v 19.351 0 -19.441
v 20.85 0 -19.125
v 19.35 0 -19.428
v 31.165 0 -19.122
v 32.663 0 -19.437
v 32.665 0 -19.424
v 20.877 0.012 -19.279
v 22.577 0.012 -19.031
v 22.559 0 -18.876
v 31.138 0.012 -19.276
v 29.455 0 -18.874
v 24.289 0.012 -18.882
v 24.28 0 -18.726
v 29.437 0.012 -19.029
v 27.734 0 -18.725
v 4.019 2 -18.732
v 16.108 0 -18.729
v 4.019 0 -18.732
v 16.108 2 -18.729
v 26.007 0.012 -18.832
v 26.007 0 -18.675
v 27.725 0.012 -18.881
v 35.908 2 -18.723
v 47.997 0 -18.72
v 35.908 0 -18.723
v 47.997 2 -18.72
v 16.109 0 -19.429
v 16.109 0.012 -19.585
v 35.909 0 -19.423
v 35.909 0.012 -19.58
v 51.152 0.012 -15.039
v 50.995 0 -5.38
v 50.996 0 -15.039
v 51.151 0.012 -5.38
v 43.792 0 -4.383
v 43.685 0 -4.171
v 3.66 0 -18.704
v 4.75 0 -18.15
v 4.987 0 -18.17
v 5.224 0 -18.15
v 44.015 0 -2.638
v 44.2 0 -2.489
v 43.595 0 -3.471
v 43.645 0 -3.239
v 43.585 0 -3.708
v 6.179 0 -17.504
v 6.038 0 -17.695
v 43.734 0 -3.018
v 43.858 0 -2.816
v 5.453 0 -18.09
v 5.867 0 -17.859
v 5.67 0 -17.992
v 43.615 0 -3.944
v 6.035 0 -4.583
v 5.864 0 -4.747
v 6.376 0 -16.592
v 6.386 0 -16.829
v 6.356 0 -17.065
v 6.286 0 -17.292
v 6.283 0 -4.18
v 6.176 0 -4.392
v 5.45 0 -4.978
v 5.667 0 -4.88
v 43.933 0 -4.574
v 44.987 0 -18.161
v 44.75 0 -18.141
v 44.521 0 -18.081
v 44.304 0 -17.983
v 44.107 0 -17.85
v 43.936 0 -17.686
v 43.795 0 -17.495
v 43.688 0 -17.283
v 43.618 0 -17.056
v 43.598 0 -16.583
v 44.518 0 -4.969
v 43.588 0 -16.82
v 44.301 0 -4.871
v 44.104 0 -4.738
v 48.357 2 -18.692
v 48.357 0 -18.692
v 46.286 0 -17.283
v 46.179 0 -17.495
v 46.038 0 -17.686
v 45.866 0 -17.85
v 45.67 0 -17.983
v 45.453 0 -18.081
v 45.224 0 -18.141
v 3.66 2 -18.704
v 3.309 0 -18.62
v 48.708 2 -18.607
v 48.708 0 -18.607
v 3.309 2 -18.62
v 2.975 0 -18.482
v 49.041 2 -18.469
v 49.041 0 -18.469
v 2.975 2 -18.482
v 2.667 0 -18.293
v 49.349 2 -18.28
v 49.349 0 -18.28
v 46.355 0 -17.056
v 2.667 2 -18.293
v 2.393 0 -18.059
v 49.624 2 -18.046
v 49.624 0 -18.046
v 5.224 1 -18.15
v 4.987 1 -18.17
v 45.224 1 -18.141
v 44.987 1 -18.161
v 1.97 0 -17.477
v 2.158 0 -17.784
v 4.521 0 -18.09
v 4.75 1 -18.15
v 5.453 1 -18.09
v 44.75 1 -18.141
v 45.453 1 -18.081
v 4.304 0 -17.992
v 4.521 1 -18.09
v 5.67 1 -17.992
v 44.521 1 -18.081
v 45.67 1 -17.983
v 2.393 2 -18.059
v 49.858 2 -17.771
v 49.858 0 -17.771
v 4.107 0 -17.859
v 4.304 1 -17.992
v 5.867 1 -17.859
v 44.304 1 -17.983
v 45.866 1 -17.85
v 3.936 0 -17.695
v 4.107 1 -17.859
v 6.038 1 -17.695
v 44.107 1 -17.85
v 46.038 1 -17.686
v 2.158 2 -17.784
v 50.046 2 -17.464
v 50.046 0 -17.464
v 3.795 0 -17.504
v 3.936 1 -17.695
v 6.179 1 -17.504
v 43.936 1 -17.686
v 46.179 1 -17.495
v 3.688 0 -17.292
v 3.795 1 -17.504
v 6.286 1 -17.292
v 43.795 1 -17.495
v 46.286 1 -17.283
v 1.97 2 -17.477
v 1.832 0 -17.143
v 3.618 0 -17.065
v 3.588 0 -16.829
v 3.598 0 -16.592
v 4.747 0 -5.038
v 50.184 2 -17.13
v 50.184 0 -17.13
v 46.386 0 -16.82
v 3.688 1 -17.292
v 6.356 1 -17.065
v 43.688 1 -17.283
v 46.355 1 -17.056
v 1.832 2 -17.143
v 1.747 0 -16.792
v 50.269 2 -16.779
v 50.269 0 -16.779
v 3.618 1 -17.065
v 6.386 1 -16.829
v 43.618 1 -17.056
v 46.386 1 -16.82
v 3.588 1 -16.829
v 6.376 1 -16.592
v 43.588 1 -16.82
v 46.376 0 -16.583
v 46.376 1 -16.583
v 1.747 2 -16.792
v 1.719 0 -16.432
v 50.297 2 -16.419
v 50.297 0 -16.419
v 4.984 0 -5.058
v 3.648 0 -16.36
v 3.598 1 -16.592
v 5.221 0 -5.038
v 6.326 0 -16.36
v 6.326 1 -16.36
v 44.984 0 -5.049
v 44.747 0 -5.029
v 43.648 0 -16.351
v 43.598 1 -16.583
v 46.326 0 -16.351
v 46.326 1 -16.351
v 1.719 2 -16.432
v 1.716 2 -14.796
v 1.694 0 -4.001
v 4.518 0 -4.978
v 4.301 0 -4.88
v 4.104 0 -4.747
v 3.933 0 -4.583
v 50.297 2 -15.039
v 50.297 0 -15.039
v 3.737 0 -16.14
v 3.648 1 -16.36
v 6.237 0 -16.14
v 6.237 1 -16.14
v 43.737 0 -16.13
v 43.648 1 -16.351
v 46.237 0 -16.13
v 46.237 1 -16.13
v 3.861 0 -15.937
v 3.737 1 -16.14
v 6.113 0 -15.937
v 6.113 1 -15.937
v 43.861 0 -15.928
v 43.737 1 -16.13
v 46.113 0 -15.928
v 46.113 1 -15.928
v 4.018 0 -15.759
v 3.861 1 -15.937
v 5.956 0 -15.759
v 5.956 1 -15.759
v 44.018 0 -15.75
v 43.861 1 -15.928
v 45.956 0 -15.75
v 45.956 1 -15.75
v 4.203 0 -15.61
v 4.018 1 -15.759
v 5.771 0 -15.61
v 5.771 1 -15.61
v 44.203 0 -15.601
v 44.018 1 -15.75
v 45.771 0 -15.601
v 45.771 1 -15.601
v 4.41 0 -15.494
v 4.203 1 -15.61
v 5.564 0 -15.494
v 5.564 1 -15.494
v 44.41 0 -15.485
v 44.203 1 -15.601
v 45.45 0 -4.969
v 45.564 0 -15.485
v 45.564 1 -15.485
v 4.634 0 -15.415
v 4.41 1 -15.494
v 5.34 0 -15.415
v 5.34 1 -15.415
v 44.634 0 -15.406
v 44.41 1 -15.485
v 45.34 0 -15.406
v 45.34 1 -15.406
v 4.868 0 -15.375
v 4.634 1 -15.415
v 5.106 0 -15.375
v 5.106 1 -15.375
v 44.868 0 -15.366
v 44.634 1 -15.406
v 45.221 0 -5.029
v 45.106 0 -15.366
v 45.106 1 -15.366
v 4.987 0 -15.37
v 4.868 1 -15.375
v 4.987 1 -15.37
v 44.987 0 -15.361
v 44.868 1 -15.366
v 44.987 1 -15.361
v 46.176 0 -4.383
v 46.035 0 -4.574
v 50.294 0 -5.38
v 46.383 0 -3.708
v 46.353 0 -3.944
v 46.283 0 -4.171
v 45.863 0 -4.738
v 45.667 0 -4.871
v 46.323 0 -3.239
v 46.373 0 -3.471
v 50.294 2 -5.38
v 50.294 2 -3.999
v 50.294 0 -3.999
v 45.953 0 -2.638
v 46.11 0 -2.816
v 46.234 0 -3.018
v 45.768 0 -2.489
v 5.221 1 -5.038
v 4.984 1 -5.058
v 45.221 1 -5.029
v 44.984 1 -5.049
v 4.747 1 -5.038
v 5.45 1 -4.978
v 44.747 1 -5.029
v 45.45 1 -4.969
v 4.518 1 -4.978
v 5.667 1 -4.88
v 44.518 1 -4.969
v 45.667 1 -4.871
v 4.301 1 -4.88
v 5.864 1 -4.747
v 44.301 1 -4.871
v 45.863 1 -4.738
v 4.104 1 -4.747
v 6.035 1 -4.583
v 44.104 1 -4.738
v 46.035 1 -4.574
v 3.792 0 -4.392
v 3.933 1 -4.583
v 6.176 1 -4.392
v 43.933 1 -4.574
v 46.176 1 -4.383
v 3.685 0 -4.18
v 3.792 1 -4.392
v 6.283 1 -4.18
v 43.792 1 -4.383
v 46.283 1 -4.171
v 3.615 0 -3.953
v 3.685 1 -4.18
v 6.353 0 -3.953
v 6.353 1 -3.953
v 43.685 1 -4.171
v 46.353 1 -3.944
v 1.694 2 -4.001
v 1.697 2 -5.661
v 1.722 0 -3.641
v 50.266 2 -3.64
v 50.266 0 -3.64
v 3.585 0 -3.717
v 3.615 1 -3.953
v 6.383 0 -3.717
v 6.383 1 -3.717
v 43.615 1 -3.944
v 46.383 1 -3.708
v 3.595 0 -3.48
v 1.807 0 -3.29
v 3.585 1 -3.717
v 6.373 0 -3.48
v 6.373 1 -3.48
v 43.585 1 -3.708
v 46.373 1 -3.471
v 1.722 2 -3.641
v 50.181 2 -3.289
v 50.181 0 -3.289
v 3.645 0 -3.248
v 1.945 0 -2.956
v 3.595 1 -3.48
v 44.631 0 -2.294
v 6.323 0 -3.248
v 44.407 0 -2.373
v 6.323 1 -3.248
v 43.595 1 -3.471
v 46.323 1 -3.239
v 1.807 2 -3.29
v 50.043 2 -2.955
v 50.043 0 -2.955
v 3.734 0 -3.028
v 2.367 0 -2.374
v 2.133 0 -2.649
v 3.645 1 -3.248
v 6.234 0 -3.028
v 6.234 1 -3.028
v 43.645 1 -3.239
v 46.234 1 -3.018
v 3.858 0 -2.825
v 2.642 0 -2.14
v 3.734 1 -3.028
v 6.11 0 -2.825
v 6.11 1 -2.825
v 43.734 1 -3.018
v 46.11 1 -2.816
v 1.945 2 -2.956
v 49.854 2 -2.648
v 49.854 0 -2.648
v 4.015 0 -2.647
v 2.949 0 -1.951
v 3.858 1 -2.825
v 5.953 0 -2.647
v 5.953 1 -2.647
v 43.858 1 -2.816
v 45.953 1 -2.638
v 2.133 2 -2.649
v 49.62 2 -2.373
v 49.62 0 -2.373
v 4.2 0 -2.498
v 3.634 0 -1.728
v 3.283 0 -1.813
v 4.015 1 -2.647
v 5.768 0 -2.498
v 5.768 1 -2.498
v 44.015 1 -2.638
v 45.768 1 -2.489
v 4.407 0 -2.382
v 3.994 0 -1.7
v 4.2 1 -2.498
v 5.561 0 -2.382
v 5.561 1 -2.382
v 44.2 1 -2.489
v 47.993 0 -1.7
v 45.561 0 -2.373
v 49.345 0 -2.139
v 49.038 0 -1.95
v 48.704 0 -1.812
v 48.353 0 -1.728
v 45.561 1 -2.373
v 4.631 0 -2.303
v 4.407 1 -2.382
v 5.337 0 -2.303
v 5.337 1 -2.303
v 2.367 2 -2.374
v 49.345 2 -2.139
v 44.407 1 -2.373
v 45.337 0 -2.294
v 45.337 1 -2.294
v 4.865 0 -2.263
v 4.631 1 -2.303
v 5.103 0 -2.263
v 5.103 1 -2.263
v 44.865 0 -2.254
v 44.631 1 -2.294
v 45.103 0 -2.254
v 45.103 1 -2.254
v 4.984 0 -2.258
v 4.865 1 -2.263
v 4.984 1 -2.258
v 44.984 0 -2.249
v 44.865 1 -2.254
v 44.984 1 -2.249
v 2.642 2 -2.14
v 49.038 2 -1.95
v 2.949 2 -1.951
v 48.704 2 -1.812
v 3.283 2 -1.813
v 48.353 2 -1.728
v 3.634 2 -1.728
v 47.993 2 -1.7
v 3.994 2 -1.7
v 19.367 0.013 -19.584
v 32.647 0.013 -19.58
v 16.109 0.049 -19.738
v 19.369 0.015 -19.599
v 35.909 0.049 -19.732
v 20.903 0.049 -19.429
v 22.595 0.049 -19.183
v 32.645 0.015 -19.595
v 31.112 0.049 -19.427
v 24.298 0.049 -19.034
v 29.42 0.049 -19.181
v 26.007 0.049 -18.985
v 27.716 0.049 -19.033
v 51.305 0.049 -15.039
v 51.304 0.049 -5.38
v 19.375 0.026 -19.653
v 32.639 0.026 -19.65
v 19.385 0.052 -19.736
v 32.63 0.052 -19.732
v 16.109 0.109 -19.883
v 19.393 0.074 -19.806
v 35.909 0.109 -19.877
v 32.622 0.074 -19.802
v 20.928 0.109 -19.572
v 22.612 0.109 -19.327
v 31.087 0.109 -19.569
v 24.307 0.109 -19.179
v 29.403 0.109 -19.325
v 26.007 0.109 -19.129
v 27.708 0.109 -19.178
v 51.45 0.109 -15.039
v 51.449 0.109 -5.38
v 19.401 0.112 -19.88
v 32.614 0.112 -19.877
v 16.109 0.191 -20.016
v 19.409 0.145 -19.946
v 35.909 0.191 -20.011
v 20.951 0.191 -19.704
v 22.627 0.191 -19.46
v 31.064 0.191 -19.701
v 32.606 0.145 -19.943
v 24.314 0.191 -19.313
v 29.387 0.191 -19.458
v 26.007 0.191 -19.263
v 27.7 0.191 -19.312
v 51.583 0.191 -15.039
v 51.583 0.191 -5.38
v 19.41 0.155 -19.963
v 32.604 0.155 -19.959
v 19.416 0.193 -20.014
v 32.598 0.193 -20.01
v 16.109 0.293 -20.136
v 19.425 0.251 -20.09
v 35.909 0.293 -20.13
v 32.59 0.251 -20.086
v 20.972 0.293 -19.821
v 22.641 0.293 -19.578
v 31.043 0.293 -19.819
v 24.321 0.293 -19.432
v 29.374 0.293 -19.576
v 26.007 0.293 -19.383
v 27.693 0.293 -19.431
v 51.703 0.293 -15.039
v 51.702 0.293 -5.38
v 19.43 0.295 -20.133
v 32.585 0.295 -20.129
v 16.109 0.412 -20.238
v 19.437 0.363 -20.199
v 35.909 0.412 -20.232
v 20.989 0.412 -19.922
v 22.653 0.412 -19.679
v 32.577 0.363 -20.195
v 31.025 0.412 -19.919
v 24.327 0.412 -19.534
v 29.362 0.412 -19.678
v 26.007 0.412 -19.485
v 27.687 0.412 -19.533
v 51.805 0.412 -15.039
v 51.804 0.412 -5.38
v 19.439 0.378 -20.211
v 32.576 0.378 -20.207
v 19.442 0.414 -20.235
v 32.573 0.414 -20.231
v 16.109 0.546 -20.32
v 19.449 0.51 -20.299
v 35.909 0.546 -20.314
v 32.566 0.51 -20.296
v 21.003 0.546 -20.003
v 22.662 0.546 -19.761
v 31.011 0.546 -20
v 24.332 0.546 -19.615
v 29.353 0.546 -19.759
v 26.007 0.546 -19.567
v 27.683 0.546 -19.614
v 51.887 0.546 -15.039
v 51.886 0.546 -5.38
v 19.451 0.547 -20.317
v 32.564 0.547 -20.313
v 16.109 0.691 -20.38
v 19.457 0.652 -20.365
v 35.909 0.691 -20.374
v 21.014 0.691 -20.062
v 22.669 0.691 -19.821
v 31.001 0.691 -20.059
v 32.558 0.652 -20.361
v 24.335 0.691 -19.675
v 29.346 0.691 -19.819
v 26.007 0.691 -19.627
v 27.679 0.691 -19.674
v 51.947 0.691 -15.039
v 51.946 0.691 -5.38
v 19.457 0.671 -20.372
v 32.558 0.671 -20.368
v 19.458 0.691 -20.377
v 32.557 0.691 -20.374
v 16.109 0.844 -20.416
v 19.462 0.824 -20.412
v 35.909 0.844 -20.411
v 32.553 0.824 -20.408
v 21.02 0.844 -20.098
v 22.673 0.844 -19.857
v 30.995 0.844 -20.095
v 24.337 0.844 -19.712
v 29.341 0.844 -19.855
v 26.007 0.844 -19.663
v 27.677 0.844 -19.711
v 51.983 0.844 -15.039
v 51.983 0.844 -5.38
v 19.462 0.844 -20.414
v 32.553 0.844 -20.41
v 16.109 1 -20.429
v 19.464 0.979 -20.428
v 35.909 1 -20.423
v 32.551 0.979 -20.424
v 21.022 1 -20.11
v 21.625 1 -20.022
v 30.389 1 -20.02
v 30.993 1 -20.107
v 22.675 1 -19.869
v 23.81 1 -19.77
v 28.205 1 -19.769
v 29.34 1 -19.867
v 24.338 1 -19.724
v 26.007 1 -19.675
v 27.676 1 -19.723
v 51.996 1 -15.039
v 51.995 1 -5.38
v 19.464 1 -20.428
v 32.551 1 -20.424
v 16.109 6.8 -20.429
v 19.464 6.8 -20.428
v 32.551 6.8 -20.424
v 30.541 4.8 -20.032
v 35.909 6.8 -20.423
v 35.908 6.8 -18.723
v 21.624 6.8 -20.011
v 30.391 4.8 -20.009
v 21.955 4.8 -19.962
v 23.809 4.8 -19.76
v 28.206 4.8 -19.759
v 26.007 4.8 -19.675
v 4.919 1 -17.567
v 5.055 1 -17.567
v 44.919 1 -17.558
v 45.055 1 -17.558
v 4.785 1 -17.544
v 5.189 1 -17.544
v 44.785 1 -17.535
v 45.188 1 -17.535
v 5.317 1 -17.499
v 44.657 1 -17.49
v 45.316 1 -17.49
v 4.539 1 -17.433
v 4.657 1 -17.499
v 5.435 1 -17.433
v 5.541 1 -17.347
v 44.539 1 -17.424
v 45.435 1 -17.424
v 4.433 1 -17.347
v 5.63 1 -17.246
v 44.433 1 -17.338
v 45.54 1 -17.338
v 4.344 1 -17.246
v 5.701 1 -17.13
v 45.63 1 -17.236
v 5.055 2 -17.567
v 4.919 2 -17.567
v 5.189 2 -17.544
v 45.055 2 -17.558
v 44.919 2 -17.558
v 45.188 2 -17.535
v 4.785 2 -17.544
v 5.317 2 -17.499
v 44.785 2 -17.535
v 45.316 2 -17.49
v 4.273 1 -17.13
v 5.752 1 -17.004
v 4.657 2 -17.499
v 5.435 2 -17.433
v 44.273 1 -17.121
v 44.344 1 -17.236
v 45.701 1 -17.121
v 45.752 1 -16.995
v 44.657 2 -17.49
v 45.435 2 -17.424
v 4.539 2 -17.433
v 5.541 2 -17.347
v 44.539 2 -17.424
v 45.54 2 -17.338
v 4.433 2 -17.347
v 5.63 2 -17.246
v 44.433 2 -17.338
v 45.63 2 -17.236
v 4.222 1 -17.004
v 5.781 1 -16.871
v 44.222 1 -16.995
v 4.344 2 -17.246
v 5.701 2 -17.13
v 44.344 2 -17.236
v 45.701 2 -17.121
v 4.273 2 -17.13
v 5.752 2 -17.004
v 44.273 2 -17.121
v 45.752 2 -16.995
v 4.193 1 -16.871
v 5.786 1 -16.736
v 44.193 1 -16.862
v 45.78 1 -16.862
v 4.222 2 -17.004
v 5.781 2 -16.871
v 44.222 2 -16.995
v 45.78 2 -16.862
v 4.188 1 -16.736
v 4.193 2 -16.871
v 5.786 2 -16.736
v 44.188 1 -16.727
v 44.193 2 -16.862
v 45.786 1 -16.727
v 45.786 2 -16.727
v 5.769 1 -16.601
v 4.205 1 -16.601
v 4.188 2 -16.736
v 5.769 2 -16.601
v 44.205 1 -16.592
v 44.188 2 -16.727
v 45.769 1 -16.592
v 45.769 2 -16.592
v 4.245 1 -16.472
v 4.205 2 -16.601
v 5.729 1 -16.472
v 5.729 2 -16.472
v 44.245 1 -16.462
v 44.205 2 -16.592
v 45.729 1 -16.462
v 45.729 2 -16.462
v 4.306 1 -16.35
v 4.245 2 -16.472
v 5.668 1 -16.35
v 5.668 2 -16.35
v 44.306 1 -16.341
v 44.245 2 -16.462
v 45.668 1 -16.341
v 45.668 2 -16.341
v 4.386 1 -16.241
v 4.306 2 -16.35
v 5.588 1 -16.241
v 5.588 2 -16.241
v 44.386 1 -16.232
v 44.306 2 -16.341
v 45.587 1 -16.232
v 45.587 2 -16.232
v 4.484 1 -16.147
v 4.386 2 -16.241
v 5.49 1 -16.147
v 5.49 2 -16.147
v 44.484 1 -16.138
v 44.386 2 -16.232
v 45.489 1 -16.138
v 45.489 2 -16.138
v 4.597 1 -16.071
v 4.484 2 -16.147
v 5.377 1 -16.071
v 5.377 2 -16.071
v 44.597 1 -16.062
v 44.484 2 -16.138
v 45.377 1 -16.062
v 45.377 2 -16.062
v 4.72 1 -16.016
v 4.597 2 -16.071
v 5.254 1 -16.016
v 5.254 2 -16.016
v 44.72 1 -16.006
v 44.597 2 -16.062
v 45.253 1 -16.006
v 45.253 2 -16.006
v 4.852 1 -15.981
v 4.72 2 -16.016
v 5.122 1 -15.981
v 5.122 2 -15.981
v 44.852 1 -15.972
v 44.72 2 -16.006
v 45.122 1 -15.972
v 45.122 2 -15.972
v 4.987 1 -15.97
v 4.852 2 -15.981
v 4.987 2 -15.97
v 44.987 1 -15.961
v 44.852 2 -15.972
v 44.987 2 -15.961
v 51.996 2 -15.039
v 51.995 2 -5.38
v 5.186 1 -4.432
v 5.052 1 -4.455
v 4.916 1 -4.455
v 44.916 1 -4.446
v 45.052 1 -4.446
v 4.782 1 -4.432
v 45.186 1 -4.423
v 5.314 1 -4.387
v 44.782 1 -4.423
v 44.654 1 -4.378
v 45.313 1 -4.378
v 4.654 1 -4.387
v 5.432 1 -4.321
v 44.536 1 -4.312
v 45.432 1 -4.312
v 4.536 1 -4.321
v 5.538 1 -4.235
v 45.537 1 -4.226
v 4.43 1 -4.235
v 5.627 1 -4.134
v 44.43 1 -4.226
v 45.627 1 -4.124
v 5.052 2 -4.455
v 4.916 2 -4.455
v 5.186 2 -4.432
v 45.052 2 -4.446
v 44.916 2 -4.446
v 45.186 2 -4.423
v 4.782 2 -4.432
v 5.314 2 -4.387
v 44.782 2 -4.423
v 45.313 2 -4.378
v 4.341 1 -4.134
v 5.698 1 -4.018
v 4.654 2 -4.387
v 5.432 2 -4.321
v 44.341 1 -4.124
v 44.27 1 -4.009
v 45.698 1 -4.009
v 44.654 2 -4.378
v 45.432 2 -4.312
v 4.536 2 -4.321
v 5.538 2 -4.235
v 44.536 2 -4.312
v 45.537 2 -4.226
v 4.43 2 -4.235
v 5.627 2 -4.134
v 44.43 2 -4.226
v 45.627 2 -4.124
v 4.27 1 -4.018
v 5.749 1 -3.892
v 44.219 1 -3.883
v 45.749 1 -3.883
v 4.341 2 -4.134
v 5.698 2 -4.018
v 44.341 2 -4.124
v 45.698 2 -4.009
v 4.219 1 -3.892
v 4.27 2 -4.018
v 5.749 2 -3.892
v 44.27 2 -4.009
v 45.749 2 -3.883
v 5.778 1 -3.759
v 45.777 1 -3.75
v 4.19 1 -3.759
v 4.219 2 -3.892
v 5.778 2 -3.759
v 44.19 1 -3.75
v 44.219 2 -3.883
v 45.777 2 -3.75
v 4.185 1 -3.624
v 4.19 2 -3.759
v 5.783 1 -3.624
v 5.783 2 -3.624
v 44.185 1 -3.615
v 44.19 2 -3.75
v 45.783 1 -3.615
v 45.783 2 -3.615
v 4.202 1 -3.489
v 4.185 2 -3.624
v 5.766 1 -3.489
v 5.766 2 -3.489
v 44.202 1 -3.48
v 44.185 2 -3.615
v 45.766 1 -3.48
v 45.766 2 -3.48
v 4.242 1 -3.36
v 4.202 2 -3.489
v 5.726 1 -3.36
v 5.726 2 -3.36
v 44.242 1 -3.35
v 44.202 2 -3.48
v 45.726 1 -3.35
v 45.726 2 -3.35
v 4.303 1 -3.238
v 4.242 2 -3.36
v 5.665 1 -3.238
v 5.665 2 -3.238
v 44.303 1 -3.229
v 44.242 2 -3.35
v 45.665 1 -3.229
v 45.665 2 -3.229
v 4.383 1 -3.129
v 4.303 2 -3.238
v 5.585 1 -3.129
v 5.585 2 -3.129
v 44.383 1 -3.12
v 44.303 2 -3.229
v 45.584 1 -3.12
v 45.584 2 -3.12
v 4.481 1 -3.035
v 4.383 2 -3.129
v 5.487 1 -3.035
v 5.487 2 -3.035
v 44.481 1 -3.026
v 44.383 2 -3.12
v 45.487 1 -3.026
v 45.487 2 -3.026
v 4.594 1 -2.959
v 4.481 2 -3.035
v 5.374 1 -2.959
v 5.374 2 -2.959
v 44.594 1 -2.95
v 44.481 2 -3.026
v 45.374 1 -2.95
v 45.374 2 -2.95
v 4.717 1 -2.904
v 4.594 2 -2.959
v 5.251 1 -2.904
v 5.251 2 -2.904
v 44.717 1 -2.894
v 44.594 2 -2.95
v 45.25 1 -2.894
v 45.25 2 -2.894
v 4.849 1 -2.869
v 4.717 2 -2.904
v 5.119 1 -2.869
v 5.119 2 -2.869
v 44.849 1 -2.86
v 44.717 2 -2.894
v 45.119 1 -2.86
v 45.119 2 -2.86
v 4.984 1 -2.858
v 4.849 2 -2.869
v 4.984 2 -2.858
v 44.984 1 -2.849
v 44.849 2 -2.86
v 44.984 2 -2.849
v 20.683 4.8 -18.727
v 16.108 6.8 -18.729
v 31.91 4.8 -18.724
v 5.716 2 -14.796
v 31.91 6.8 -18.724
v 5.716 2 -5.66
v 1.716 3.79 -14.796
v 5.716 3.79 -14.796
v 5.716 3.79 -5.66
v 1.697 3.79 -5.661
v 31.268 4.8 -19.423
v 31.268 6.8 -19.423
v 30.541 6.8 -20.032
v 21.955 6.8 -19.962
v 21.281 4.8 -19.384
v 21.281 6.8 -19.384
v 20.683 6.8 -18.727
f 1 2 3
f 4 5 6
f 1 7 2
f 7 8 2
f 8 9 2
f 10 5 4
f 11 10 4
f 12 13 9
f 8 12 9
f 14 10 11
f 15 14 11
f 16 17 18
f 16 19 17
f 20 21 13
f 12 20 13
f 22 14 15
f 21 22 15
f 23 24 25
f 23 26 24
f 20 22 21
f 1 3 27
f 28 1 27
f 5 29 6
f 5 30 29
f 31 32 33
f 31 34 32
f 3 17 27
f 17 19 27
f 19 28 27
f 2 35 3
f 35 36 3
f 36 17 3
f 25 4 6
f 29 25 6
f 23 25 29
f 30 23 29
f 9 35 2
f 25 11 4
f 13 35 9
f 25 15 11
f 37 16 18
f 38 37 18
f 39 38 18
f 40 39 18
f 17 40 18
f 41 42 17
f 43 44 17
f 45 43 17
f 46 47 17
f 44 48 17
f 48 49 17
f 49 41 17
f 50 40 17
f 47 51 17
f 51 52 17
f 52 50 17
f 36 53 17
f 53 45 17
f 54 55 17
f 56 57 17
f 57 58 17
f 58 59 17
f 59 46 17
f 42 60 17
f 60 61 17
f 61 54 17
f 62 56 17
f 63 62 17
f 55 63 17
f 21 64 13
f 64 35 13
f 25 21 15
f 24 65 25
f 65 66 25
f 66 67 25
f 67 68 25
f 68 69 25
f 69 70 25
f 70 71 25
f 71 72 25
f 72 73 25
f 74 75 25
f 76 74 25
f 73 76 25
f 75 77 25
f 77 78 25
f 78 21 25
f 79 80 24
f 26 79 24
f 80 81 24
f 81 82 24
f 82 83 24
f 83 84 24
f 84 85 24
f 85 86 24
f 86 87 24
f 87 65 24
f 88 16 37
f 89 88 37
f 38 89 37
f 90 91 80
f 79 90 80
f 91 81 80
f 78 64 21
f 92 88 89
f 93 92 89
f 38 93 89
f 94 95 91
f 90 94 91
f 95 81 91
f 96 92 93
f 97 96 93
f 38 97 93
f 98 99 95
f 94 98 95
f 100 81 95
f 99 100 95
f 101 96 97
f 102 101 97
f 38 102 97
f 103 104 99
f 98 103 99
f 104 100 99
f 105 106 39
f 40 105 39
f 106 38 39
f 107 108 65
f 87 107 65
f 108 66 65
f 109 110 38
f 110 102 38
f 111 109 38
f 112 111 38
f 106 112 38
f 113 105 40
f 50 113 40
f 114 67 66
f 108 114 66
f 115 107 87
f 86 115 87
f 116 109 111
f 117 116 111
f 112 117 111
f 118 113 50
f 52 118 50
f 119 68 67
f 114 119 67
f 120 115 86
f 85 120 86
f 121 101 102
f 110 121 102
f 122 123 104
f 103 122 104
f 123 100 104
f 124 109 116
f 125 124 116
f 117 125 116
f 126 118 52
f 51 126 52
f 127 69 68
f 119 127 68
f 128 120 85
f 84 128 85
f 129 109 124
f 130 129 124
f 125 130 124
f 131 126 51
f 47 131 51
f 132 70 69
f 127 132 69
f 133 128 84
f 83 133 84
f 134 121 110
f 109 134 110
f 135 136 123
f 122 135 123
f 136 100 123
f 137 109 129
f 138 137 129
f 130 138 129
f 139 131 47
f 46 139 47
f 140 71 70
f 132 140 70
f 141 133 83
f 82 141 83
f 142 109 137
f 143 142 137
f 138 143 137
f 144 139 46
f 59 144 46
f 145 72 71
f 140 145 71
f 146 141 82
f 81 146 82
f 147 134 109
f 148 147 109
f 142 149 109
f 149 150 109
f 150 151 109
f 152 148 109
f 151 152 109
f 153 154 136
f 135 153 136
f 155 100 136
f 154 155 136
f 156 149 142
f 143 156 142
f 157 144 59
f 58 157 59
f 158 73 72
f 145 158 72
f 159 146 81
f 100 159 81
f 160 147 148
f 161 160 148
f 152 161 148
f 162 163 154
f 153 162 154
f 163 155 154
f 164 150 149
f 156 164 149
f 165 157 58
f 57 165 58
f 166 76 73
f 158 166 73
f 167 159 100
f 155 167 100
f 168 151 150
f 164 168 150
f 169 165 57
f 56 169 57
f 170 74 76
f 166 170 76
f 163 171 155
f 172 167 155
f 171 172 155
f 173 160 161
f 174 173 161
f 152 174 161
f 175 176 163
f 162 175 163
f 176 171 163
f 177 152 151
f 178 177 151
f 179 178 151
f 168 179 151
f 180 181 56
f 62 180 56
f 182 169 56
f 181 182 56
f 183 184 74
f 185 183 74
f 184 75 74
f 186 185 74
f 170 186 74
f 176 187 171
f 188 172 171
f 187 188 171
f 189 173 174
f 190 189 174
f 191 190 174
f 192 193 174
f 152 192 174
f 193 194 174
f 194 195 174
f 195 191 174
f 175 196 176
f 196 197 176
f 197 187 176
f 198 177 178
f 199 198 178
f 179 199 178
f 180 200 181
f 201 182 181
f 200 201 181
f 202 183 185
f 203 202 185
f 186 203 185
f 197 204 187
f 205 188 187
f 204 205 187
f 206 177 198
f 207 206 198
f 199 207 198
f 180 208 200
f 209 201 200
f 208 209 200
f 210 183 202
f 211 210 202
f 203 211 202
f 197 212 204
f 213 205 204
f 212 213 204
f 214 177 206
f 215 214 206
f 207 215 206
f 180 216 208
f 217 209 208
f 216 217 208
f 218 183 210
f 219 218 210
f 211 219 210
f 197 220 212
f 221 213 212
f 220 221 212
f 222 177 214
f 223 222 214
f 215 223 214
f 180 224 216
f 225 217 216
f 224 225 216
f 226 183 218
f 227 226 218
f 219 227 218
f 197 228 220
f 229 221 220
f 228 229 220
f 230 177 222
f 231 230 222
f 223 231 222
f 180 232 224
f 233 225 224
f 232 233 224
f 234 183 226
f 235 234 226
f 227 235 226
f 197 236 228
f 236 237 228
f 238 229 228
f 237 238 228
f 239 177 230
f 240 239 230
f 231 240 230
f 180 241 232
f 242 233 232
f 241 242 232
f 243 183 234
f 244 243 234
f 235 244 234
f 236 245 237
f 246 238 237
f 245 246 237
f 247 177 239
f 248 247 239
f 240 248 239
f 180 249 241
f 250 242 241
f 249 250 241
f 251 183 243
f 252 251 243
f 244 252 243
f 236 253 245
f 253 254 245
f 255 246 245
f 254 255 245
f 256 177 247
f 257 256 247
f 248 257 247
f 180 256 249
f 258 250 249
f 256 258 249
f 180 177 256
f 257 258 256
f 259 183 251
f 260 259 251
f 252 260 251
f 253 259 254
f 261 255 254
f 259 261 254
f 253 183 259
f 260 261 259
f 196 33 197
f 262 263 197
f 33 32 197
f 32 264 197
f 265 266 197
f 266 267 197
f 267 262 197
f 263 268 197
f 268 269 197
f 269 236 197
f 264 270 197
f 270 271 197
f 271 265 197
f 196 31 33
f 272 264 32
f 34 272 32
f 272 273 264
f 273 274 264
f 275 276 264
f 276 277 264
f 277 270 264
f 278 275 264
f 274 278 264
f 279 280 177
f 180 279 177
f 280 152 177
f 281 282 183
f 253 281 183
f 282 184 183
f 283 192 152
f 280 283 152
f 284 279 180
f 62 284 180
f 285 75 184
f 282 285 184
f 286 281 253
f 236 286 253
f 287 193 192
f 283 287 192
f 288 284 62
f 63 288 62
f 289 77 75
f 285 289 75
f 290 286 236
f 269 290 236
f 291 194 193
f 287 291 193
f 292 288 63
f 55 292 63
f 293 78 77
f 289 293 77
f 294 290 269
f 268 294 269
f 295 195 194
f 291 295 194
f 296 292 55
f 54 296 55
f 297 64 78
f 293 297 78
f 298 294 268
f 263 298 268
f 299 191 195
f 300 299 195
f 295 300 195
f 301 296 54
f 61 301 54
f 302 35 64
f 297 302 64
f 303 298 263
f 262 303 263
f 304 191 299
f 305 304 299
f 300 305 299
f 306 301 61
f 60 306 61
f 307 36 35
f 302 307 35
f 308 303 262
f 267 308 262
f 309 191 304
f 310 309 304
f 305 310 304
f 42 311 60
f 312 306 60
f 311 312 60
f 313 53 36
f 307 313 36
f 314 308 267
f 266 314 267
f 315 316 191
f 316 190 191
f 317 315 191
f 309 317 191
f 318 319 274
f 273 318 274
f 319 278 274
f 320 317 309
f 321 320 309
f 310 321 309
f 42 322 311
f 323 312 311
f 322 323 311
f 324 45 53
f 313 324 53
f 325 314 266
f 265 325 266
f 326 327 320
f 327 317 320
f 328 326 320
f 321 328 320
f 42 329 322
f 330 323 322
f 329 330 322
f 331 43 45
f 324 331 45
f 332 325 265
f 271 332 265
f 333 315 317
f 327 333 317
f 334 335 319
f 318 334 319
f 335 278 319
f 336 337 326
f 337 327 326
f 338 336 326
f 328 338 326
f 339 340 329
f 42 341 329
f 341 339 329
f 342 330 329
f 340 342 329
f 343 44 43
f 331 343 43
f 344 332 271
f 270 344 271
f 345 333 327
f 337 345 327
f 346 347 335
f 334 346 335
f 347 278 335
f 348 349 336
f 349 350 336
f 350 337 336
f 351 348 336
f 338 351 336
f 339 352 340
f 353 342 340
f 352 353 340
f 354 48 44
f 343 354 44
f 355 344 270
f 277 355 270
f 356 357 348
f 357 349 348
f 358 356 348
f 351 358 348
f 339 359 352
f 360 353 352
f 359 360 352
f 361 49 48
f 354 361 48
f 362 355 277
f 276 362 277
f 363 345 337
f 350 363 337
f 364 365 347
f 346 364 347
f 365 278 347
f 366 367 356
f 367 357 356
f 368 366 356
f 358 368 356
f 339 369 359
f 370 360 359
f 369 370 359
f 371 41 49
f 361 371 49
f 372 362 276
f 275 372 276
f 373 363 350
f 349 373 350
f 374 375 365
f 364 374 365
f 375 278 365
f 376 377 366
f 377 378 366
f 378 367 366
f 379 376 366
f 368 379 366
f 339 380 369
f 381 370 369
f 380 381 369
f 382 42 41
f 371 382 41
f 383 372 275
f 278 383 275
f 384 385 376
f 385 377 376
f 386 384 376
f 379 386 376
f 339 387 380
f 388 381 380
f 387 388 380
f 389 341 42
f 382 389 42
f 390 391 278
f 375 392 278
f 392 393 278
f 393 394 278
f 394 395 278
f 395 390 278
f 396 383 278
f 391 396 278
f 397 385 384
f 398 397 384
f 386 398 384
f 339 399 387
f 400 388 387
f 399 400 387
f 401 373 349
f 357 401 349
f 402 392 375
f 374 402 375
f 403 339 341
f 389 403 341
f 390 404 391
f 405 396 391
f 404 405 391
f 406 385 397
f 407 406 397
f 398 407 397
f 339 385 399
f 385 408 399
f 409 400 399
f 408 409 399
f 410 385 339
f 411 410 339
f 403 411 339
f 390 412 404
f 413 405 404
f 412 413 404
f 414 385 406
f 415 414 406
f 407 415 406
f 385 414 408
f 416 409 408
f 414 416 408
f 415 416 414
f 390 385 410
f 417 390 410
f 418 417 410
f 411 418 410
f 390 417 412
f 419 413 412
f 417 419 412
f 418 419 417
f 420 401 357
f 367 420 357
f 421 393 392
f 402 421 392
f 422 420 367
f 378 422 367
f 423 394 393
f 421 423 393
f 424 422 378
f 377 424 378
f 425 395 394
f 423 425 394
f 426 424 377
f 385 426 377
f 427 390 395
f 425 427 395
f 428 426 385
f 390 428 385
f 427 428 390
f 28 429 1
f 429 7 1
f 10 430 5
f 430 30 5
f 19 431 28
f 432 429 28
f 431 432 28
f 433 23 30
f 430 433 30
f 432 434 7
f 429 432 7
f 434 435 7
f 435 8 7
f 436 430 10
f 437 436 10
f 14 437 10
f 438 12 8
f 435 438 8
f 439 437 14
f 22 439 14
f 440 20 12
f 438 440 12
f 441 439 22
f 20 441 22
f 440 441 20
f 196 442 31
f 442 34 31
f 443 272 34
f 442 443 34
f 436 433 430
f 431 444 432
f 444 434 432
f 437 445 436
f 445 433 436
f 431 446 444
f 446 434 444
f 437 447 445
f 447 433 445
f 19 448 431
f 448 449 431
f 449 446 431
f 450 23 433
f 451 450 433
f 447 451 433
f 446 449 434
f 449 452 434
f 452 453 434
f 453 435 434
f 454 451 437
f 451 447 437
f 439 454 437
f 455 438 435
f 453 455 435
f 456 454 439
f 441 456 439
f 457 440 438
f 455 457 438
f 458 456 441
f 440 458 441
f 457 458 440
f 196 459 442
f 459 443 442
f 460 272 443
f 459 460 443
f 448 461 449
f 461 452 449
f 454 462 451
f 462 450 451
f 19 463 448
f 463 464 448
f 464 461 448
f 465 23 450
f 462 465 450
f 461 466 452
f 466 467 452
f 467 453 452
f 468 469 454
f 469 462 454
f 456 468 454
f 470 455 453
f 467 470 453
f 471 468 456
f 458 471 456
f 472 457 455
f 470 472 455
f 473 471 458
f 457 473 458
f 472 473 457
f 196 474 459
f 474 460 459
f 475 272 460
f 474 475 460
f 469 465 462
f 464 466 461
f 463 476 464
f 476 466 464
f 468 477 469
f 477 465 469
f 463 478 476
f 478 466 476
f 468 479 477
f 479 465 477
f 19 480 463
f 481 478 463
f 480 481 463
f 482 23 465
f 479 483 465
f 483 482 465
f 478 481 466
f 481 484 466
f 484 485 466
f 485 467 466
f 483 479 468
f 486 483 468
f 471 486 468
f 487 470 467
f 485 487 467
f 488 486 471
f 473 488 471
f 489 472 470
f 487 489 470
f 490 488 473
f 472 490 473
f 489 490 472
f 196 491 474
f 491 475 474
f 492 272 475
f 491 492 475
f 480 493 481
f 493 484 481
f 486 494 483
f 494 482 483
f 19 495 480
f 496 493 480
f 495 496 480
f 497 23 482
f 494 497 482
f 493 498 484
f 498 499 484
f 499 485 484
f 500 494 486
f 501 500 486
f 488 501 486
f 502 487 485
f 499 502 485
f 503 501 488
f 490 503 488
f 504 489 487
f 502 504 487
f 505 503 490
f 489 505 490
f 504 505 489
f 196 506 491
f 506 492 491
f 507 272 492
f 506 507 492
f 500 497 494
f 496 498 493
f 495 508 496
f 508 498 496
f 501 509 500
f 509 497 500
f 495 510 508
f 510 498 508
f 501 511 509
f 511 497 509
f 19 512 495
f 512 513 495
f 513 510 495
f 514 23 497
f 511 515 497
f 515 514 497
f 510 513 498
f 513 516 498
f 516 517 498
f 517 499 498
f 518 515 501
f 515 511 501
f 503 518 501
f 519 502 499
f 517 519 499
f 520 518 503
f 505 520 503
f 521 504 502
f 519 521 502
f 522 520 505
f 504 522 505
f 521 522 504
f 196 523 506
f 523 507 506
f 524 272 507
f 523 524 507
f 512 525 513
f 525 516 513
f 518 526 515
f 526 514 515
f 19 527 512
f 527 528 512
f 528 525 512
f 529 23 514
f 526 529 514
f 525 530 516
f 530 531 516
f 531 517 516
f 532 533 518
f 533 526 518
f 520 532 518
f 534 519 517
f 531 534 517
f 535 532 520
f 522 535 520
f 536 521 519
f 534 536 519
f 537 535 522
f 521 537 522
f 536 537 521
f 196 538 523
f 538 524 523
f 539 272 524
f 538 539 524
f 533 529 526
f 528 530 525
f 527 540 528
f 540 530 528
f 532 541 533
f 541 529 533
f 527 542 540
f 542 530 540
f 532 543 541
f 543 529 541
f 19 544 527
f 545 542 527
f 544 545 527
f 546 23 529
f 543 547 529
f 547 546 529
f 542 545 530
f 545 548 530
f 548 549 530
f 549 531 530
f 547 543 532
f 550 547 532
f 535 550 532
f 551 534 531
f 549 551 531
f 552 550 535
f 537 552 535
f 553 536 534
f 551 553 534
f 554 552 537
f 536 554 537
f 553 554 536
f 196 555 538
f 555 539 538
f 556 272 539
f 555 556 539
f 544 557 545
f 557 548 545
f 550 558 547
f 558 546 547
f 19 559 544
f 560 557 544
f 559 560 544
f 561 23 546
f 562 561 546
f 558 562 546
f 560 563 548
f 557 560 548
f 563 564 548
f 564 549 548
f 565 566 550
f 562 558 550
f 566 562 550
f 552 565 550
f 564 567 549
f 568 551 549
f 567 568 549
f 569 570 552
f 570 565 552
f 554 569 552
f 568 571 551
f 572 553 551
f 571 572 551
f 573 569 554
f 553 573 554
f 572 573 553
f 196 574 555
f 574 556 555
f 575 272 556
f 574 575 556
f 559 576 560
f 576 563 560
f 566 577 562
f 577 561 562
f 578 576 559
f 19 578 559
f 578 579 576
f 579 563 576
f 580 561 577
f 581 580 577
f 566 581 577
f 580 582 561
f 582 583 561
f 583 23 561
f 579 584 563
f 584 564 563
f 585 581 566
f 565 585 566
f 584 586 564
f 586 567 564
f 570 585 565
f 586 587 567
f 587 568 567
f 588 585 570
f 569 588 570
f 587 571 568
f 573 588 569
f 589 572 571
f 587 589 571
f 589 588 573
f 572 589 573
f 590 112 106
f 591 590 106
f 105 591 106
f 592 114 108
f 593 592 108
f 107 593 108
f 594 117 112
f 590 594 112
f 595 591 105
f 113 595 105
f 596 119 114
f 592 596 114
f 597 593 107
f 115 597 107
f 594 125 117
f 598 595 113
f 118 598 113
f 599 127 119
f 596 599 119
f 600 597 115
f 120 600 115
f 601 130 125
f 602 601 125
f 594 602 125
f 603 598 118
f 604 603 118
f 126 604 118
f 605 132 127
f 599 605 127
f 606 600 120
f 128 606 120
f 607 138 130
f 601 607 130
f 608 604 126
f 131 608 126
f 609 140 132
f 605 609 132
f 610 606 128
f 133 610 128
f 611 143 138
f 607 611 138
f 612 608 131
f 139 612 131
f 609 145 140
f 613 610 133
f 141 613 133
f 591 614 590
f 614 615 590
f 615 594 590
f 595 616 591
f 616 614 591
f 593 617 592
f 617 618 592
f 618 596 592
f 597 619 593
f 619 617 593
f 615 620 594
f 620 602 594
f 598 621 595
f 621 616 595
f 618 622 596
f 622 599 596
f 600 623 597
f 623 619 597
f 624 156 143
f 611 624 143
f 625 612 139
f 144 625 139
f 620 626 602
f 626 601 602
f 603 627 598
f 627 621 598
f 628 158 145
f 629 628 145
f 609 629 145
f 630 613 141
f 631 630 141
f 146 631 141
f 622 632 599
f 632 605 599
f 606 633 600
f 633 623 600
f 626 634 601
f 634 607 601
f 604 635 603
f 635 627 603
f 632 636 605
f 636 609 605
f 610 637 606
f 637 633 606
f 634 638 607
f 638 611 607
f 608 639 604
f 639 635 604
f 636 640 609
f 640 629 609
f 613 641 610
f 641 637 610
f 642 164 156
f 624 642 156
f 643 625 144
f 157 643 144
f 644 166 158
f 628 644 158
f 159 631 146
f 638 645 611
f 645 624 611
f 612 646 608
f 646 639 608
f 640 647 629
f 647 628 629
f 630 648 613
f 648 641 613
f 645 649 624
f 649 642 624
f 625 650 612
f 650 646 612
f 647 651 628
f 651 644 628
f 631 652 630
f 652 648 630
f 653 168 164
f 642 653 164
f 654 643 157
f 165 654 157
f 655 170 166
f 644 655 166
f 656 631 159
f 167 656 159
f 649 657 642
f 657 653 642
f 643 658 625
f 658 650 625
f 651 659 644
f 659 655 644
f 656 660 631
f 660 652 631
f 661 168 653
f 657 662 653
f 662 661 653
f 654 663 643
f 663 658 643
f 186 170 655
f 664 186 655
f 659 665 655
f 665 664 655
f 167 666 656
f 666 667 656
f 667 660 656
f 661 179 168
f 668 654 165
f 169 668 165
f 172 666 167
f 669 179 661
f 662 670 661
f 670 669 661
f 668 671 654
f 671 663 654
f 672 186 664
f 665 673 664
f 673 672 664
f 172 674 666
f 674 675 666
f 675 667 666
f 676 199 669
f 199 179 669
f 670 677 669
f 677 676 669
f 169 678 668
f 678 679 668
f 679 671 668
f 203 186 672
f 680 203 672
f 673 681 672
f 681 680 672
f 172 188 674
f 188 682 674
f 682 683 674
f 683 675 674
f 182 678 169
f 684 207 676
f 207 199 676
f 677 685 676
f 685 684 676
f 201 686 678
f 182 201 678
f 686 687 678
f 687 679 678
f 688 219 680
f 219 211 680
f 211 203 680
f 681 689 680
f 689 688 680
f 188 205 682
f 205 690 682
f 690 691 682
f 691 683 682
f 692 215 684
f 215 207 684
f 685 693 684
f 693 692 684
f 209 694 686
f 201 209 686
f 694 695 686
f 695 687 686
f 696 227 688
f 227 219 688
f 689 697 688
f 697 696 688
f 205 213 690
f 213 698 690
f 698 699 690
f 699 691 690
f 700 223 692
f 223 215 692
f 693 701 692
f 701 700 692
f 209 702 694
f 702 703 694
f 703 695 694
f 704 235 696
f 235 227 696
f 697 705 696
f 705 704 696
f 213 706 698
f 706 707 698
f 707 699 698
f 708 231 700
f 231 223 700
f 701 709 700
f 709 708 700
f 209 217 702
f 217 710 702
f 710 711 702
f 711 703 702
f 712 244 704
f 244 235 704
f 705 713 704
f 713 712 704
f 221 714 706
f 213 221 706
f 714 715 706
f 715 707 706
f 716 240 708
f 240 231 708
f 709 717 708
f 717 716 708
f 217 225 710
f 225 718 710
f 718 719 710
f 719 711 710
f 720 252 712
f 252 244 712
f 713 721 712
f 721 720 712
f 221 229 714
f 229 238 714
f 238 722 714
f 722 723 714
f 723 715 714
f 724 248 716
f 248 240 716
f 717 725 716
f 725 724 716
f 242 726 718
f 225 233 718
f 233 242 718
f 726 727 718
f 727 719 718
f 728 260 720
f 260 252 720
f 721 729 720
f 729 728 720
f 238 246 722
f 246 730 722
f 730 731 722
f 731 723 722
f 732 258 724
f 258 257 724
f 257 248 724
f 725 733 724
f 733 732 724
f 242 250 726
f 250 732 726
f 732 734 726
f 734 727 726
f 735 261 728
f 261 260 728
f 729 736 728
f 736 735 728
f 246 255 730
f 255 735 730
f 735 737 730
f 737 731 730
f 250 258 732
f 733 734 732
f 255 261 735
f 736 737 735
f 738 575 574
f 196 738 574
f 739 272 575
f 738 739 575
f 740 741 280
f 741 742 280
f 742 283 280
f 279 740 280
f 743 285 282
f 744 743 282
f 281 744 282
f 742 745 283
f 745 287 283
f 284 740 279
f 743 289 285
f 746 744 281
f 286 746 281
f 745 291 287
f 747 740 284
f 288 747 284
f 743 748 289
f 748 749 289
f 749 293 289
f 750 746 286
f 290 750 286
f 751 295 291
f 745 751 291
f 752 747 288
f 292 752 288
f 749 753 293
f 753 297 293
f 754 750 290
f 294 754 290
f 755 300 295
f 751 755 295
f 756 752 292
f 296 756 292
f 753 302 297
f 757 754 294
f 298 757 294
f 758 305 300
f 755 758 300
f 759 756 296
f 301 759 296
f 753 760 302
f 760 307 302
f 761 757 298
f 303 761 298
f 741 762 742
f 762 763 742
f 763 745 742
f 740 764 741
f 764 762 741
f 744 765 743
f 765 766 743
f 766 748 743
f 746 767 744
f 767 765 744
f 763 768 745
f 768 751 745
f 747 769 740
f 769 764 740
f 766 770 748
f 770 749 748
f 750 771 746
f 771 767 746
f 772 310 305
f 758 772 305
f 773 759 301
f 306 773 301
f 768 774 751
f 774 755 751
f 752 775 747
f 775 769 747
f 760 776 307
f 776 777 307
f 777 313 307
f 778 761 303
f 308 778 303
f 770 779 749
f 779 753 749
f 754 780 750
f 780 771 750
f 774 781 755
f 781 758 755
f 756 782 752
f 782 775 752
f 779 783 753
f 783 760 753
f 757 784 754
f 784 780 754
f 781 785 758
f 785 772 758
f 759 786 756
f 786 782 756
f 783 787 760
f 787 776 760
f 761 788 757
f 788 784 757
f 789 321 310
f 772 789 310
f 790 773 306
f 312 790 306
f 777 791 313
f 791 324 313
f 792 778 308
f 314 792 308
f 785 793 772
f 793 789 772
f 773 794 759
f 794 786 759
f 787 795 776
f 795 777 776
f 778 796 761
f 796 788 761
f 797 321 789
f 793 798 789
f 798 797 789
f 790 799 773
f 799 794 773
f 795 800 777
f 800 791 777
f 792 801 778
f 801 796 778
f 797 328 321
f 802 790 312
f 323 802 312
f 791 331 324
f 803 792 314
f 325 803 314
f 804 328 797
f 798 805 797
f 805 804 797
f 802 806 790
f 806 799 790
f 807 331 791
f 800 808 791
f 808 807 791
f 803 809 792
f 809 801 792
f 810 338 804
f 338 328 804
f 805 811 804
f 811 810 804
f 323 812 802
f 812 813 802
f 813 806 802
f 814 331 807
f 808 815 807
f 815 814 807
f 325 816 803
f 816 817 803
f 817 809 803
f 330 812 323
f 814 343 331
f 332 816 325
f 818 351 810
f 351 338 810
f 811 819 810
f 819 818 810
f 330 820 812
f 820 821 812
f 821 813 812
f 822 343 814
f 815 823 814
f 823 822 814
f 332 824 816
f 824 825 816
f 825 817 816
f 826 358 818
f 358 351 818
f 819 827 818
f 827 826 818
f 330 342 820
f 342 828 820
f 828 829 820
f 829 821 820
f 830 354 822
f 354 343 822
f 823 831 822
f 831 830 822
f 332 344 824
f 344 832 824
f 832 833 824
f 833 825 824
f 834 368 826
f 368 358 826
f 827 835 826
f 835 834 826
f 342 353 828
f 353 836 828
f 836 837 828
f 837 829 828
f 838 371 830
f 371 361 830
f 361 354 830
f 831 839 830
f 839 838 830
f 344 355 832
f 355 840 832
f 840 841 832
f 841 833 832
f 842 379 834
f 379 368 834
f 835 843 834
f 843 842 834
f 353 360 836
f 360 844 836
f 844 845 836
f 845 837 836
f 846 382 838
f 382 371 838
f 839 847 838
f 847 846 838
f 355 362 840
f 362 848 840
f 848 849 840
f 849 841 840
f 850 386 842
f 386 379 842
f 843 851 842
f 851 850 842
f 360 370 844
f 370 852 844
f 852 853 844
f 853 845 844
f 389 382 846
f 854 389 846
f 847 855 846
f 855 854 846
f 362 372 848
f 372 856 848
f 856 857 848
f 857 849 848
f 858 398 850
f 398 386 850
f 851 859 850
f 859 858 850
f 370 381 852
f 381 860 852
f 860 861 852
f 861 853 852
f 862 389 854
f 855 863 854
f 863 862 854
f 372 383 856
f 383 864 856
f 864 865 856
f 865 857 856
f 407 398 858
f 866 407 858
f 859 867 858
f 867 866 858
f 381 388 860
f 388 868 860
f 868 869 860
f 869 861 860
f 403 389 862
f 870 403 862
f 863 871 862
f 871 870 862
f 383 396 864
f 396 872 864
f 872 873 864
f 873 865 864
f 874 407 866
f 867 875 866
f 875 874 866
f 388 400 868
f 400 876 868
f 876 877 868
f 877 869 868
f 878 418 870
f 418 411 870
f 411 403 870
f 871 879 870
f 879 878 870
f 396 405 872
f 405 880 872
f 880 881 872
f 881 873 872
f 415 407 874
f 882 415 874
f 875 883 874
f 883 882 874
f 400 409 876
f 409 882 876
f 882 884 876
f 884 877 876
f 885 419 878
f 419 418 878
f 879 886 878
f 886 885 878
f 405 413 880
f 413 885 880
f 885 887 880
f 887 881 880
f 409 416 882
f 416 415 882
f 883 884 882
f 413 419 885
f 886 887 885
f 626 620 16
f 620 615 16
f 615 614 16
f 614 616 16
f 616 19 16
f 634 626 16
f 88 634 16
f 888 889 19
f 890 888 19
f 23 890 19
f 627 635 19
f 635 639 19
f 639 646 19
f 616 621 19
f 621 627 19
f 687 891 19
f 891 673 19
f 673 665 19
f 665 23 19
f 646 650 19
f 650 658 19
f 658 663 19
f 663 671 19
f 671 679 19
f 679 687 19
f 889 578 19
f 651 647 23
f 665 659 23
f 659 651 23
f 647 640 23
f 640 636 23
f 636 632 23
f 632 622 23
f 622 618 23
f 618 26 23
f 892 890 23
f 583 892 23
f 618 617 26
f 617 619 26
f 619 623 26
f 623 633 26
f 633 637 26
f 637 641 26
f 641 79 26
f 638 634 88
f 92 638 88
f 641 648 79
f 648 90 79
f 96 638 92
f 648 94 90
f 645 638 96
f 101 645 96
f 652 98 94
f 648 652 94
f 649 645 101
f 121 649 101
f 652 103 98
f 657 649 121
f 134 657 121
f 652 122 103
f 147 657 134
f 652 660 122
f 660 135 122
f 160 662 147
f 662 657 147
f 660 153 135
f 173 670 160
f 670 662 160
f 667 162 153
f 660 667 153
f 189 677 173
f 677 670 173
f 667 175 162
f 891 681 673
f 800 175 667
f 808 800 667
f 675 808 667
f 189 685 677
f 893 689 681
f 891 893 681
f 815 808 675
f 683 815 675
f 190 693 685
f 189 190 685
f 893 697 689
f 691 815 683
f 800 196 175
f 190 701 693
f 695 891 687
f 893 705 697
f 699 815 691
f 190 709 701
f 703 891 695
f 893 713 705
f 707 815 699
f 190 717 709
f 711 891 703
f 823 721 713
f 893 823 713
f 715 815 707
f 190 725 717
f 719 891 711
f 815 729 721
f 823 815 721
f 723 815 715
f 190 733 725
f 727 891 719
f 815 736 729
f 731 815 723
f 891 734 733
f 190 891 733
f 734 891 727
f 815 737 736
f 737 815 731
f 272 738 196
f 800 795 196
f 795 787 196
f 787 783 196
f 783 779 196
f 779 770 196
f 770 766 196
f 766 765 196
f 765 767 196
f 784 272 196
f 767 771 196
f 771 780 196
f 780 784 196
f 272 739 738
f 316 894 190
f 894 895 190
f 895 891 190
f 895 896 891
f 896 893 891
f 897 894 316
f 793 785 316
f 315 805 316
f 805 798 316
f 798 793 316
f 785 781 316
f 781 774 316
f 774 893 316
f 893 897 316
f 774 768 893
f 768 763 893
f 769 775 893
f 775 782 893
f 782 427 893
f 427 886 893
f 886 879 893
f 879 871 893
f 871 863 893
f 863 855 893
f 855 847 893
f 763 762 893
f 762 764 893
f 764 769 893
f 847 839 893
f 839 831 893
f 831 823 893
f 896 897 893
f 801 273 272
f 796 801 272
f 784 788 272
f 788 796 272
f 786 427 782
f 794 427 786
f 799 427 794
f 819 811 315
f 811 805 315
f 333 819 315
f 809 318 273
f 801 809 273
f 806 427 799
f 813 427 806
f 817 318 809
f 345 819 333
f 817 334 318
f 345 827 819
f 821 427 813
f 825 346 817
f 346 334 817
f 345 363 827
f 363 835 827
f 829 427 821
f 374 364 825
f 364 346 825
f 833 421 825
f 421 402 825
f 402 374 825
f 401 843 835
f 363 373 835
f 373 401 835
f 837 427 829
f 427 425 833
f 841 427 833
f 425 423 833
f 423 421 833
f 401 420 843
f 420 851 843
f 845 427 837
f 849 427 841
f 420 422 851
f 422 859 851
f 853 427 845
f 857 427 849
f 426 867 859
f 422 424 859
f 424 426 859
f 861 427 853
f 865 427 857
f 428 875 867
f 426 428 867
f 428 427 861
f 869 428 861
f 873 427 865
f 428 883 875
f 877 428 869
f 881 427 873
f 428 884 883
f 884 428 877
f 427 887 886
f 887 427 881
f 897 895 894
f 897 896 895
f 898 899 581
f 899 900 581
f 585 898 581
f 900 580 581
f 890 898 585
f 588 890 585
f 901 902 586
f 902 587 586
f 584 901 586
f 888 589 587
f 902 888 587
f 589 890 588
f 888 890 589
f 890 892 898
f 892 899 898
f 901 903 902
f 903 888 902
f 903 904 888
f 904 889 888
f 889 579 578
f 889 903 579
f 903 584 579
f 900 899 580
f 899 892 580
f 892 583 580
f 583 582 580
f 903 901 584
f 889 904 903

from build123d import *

# Parameters (mm, degrees)
EXTRUDE_1_DEPTH          = 2
SKETCH_3_R               = 1.4
CUT_EXTRUDE_2_DEPTH      = 1
SKETCH_4_R               = 0.8
CUT_EXTRUDE_3_DEPTH      = 7
FILLET_1_R               = 1
EXTRUDE_2_DEPTH          = 1.79
EXTRUDE_3_DEPTH          = 6.8
CUT_EXTRUDE_4_DEPTH      = 2
CUT_EXTRUDE_5_DEPTH      = 9
CUT_EXTRUDE_5_DEPTH_BACK = 5
SKETCH_8_R               = 28.905330341
FILLET_2_R               = 1


with BuildPart() as part:
    # 草图1 → 凸台-拉伸1 (new body)
    with BuildSketch(Plane(origin=(0, 0, 0), x_dir=(1, 0, 0), z_dir=(0, 1, 0))):
        with BuildLine():
            Line((50.296518896, 15.038773117), (51.995638969, 15.038535751))
            Line((51.995638969, 15.038535751), (51.99484152, 5.380301086))
            Line((51.99484152, 5.380301086), (50.29420013, 5.380011427))
            Line((50.29420013, 5.380011427), (50.293979101, 3.999471495))
            ThreePointArc((50.293979101, 3.999471495), (49.619955043, 2.373282378), (47.993458708, 1.700000008))
            Line((47.993458708, 1.700000008), (3.993570964, 1.700000008))
            ThreePointArc((3.993570964, 1.700000008), (2.367381847, 2.374024066), (1.694099477, 4.000520401))
            Line((1.694099477, 4.000520401), (1.718930657, 16.432494262))
            ThreePointArc((1.718930657, 16.432494262), (2.392954716, 18.058683379), (4.01945105, 18.731965749))
            Line((4.01945105, 18.731965749), (47.997365049, 18.71993116))
            ThreePointArc((47.997365049, 18.71993116), (49.623554167, 18.045907101), (50.296836537, 16.419410767))
            Line((50.296836537, 16.419410767), (50.296518896, 15.038773117))
        make_face()
    extrude(amount=EXTRUDE_1_DEPTH)

    # 草图3 → 切除-拉伸2 (cut)
    with BuildSketch(Plane(origin=(0, 0, 0), x_dir=(1, 0, 0), z_dir=(0, 1, 0))):
        with Locations((4.986997661, 16.769823075)):
            Circle(SKETCH_3_R)
        with Locations((4.984007822, 3.657835416)):
            Circle(SKETCH_3_R)
        with Locations((44.986916621, 16.760702161)):
            Circle(SKETCH_3_R)
        with Locations((44.983926782, 3.648714502)):
            Circle(SKETCH_3_R)
    extrude(amount=CUT_EXTRUDE_2_DEPTH, mode=Mode.SUBTRACT)

    # 草图4 → 切除-拉伸3 (cut)
    with BuildSketch(Plane(origin=(0, 2, 0), x_dir=(1, 0, 0), z_dir=(0, 1, 0))):
        with Locations((44.983926782, 3.648714502)):
            Circle(SKETCH_4_R)
        with Locations((44.986916621, 16.760702161)):
            Circle(SKETCH_4_R)
        with Locations((4.984007822, 3.657835416)):
            Circle(SKETCH_4_R)
        with Locations((4.986997661, 16.769823075)):
            Circle(SKETCH_4_R)
    extrude(amount=-CUT_EXTRUDE_3_DEPTH, mode=Mode.SUBTRACT)

    # 圆角1
    fillet_1_edges = [part.edges().sort_by_distance(p)[0] for p in [
        (51.995240244, 0, -10.209418418),
    ]]
    fillet(fillet_1_edges, radius=FILLET_1_R)

    # 草图5 → 凸台-拉伸2 (add)
    with BuildSketch(Plane(origin=(0, 2, 0), x_dir=(1, 0, 0), z_dir=(0, 1, 0))):
        Polygon((1.715661177, 14.795597045), (5.715661177, 14.795597045), (5.715661177, 5.660468281), (1.697415134, 5.660536688), align=None)
    extrude(amount=EXTRUDE_2_DEPTH)


with BuildPart() as extrude_3_tool:
    # 草图6 → 凸台-拉伸3 (new body)
    with BuildSketch(Plane(origin=(0, 0, 0), x_dir=(1, 0, 0), z_dir=(0, 1, 0))):
        Polygon((35.908795328, 20.423234707), (35.908407688, 18.723234749), (16.108408411, 18.72866216), (16.108796051, 20.428662118), align=None)
    extrude(amount=EXTRUDE_3_DEPTH)


with BuildPart() as part_1:
    add(part.part)


with BuildPart() as part_2:
    # 凸台-拉伸3: joined with extrude_3_tool
    add(part_1.part.fuse(extrude_3_tool.part, tol=0.00001))

    # 草图7 → 切除-拉伸4 (cut)
    with BuildSketch(Plane(origin=(0, 6.8, 0), x_dir=(1, 0, 0), z_dir=(0, 1, 0))):
        with BuildLine():
            Line((20.454642354, 18.427468236), (32.137878346, 18.424271109))
            ThreePointArc((32.137878346, 18.424271109), (26.297078845, 21.416891462), (20.454642354, 18.427468236))
        make_face()
    extrude(amount=-CUT_EXTRUDE_4_DEPTH, mode=Mode.SUBTRACT)

    # 草图8 → 切除-拉伸5 (cut, two sides: drawn at the far end of the back side and taken through both)
    with BuildSketch(Plane(origin=(0, 2, 0), x_dir=(1, 0, 0), z_dir=(0, 1, 0)).offset(-CUT_EXTRUDE_5_DEPTH_BACK)):
        with Locations((26.015215658, 48.580825692)):
            Circle(SKETCH_8_R)
    extrude(amount=CUT_EXTRUDE_5_DEPTH + CUT_EXTRUDE_5_DEPTH_BACK, mode=Mode.SUBTRACT)

    # 圆角2
    fillet_2_edges = [part_2.edges().sort_by_distance(p)[0] for p in [
        (34.230033191, 0, -20.423694875),
        (17.786260576, 0, -20.428202305),
        (26.00729237, 0, -19.675496437),
    ]]
    fillet(fillet_2_edges, radius=FILLET_2_R)


solid = part_2.part
